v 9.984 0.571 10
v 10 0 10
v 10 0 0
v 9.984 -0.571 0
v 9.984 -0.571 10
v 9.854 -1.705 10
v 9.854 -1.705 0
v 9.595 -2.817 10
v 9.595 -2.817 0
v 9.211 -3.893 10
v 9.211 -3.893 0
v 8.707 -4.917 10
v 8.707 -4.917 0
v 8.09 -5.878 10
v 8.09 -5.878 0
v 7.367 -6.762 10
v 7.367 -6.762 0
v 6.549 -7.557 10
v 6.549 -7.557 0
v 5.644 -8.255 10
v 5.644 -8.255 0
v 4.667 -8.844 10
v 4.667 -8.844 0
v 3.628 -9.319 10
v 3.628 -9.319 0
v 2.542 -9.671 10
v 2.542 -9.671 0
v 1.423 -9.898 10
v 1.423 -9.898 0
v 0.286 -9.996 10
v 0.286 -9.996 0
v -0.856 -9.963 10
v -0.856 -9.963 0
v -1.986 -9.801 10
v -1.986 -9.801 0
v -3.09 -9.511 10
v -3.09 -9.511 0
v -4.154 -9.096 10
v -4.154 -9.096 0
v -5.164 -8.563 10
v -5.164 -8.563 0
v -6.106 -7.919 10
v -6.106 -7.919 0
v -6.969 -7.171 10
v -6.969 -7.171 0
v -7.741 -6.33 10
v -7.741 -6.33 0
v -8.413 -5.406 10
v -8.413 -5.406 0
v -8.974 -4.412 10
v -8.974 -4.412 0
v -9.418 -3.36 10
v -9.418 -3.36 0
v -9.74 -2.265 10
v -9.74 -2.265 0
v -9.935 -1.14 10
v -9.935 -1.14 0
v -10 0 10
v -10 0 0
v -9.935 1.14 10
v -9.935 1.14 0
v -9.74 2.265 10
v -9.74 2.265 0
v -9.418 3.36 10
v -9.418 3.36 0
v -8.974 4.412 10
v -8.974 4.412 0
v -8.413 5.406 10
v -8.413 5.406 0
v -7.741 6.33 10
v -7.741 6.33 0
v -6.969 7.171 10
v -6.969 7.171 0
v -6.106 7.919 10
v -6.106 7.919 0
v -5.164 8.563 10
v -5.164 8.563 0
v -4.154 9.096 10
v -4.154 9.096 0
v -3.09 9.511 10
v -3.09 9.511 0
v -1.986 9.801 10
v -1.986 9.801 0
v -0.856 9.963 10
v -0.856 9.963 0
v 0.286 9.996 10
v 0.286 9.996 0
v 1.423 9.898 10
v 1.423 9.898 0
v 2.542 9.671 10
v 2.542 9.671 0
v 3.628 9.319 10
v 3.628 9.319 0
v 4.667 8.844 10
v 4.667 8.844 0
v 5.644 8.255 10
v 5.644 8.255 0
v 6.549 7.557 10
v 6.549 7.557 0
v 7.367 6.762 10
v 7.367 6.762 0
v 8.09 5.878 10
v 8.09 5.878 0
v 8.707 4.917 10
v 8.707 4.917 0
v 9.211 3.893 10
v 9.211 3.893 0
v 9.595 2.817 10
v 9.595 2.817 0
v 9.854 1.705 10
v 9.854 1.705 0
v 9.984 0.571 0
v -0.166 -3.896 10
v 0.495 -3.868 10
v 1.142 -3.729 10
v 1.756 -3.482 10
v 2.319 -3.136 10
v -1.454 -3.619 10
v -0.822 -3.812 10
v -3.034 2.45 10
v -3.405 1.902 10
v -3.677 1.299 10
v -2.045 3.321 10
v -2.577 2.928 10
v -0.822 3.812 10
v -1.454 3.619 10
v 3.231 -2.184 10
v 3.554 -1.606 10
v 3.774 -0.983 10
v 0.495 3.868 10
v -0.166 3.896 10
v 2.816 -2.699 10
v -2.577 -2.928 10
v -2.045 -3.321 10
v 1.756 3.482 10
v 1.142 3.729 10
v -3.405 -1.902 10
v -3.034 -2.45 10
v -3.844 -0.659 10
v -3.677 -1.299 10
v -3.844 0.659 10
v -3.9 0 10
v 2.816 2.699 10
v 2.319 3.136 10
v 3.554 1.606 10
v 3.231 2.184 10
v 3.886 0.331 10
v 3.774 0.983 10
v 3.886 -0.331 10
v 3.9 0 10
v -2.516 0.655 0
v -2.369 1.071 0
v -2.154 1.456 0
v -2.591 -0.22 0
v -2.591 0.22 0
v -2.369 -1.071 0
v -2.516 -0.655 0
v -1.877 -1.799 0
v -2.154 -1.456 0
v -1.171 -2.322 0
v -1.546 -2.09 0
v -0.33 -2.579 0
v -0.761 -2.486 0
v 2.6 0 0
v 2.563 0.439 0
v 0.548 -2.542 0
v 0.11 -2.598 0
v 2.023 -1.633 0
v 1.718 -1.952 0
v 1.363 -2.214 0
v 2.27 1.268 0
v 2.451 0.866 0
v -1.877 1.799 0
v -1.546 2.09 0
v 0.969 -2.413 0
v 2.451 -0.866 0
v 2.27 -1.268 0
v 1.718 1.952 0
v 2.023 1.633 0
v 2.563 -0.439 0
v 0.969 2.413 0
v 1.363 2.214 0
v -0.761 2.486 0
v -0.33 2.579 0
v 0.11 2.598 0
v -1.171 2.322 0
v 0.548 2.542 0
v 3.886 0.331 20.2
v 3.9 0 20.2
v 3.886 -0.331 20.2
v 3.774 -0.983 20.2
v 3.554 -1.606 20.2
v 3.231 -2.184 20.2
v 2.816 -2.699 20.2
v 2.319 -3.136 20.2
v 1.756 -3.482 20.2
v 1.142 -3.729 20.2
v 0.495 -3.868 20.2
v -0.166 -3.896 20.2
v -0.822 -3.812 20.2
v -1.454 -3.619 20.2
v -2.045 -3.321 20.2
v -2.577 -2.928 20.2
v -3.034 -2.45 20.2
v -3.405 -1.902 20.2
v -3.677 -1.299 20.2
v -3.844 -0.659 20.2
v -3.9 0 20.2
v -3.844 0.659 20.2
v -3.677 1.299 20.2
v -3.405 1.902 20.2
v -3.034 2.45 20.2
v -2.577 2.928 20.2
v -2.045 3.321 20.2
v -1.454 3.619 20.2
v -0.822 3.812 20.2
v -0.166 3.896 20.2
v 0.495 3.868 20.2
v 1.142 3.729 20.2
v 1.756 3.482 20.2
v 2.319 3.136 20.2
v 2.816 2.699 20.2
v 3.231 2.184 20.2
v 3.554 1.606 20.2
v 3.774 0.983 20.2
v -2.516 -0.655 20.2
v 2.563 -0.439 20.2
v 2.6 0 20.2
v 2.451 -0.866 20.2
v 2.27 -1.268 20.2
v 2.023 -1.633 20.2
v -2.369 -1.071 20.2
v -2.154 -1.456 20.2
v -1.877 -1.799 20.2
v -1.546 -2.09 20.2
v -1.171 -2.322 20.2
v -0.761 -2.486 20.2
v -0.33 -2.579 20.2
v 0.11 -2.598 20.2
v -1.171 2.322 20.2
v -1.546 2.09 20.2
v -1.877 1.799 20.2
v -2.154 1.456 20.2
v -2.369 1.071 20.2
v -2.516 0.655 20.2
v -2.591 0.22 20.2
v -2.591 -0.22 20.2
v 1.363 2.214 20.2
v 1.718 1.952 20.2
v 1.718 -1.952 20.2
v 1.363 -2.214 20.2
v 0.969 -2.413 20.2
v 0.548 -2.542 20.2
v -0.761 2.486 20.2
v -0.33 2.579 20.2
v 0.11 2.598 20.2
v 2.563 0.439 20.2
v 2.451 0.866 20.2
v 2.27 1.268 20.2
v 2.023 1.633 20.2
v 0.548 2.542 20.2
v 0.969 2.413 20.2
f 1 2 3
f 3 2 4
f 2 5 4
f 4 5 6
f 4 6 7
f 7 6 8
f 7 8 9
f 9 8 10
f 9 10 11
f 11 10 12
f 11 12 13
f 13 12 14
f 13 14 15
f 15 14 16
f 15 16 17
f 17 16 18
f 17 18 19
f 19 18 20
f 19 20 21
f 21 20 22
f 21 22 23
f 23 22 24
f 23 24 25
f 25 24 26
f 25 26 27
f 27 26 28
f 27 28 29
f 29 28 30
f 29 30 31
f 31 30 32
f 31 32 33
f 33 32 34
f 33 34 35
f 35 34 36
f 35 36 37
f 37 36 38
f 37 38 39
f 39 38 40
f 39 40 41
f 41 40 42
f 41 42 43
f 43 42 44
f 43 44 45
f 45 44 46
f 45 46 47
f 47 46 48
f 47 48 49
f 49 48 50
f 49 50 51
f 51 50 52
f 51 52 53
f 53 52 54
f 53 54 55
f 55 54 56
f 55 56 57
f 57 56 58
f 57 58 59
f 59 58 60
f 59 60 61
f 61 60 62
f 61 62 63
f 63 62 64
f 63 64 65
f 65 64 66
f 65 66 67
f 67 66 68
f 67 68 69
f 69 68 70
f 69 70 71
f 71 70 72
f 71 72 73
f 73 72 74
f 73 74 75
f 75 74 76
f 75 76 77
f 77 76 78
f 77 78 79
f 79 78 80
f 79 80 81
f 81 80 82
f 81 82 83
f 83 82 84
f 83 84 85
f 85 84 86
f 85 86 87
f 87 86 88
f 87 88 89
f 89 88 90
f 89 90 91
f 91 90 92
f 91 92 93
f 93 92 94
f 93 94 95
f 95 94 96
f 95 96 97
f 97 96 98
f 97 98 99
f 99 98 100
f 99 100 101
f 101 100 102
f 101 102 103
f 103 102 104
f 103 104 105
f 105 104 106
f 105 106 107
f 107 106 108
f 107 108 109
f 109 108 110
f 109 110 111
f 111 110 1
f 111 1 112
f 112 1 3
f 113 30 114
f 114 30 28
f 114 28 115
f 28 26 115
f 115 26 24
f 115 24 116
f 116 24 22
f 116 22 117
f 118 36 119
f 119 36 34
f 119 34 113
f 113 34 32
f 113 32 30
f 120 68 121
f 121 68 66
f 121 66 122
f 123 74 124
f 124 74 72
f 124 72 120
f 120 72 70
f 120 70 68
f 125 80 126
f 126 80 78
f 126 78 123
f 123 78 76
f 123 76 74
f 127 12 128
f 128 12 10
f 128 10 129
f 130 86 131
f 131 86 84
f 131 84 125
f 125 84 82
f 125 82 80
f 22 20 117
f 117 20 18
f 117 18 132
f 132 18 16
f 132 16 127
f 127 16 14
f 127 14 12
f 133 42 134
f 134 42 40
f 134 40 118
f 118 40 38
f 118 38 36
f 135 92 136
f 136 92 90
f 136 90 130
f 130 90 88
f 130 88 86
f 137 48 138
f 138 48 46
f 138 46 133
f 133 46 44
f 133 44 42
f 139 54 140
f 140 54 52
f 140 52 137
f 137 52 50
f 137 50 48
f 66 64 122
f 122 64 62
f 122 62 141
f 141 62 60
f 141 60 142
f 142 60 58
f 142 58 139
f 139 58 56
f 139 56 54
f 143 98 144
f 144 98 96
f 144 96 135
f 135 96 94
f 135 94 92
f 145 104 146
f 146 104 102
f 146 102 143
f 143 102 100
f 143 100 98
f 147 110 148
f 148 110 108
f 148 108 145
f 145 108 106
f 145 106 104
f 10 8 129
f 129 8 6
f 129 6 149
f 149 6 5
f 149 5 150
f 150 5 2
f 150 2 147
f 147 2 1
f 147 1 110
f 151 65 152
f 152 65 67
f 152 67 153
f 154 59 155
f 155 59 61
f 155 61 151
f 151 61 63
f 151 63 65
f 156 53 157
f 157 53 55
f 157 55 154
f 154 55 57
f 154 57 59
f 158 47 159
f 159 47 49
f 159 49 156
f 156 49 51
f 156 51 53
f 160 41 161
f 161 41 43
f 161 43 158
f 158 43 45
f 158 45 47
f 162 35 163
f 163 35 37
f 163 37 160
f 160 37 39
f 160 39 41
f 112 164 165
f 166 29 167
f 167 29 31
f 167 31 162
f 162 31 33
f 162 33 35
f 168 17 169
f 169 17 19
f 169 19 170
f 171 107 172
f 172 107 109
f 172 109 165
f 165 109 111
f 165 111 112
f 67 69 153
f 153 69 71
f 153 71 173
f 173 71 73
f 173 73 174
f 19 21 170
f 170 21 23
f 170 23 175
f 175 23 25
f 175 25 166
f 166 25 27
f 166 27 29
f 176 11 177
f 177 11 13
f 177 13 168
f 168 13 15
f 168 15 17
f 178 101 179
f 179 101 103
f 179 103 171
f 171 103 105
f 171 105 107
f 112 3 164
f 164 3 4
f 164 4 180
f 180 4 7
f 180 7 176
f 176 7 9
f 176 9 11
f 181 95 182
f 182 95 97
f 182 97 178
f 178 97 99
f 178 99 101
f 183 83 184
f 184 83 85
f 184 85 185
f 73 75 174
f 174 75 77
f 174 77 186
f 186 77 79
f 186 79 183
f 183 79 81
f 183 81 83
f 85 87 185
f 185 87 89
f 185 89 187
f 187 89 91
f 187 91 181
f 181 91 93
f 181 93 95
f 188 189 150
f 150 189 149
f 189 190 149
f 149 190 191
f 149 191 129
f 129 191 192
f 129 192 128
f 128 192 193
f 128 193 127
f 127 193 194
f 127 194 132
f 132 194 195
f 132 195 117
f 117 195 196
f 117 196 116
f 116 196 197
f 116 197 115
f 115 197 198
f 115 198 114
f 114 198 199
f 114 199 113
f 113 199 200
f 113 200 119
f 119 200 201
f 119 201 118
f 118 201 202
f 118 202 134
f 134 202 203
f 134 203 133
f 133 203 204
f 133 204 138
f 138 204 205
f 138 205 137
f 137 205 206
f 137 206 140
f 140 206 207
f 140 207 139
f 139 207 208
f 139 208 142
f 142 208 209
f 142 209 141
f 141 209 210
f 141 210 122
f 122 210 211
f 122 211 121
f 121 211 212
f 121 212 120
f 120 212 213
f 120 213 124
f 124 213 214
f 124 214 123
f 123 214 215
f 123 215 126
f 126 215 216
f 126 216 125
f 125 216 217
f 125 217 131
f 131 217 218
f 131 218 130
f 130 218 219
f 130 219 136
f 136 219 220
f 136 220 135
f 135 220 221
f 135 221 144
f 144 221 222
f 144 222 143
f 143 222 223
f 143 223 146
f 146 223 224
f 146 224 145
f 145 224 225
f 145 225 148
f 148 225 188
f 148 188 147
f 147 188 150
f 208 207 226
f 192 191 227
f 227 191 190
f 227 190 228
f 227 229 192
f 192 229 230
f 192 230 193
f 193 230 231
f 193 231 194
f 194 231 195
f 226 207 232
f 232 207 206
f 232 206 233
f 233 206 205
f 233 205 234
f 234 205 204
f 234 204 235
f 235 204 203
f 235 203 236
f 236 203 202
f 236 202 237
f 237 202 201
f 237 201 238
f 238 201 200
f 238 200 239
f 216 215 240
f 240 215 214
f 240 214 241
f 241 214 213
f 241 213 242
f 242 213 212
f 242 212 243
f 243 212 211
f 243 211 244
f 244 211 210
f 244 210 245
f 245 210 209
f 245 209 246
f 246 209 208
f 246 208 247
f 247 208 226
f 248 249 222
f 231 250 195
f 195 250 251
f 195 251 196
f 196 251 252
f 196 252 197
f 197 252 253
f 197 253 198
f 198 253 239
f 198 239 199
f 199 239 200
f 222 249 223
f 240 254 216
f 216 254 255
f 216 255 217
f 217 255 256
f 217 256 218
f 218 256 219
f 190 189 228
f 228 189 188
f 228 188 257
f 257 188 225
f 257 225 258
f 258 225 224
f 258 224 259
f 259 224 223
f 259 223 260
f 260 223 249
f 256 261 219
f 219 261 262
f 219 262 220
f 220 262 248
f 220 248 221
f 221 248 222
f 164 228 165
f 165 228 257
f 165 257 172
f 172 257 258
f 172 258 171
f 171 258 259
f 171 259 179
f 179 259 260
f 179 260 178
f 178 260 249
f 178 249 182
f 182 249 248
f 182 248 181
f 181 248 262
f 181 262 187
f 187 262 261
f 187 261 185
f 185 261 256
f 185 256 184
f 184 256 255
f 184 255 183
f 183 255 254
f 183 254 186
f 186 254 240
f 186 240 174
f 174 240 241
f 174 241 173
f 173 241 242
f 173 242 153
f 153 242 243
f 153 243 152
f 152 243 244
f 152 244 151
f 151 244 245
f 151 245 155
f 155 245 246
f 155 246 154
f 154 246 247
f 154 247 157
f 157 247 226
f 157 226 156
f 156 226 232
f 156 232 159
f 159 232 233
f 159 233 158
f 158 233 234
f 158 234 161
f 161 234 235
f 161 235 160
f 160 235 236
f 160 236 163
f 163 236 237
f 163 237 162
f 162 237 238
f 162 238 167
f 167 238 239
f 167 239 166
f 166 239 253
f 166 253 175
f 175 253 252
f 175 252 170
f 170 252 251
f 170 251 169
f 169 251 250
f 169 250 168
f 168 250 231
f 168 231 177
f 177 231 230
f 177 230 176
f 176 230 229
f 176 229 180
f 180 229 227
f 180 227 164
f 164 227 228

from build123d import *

# Parameters (mm, degrees)
SKETCH1_R      = 10
EXTRUDE1_DEPTH = 10
SKETCH2_R      = 3.9
EXTRUDE2_DEPTH = 10.2
EXTRUDE3_REACH = 26.658
SKETCH3_R      = 2.6


with BuildPart() as part:
    # Sketch1 → Extrude1 (new body)
    with BuildSketch(Plane.XY):
        Circle(SKETCH1_R)
    extrude(amount=EXTRUDE1_DEPTH)

    # Sketch2 → Extrude2 (add)
    with BuildSketch(Plane.XY.offset(10)):
        Circle(SKETCH2_R)
    extrude(amount=EXTRUDE2_DEPTH)

    # Sketch3 → Extrude3 (cut, up to next)
    with BuildSketch(Plane.XY.offset(20.2), mode=Mode.PRIVATE) as extrude3_sk1:
        Circle(SKETCH3_R)
    extrude3_tool1 = extrude(extrude3_sk1.sketch, amount=-EXTRUDE3_REACH, mode=Mode.PRIVATE) & part.part
    add(extrude3_tool1.solids().sort_by_distance((0, 0, 20.2))[0], mode=Mode.SUBTRACT)


solid = part.part
